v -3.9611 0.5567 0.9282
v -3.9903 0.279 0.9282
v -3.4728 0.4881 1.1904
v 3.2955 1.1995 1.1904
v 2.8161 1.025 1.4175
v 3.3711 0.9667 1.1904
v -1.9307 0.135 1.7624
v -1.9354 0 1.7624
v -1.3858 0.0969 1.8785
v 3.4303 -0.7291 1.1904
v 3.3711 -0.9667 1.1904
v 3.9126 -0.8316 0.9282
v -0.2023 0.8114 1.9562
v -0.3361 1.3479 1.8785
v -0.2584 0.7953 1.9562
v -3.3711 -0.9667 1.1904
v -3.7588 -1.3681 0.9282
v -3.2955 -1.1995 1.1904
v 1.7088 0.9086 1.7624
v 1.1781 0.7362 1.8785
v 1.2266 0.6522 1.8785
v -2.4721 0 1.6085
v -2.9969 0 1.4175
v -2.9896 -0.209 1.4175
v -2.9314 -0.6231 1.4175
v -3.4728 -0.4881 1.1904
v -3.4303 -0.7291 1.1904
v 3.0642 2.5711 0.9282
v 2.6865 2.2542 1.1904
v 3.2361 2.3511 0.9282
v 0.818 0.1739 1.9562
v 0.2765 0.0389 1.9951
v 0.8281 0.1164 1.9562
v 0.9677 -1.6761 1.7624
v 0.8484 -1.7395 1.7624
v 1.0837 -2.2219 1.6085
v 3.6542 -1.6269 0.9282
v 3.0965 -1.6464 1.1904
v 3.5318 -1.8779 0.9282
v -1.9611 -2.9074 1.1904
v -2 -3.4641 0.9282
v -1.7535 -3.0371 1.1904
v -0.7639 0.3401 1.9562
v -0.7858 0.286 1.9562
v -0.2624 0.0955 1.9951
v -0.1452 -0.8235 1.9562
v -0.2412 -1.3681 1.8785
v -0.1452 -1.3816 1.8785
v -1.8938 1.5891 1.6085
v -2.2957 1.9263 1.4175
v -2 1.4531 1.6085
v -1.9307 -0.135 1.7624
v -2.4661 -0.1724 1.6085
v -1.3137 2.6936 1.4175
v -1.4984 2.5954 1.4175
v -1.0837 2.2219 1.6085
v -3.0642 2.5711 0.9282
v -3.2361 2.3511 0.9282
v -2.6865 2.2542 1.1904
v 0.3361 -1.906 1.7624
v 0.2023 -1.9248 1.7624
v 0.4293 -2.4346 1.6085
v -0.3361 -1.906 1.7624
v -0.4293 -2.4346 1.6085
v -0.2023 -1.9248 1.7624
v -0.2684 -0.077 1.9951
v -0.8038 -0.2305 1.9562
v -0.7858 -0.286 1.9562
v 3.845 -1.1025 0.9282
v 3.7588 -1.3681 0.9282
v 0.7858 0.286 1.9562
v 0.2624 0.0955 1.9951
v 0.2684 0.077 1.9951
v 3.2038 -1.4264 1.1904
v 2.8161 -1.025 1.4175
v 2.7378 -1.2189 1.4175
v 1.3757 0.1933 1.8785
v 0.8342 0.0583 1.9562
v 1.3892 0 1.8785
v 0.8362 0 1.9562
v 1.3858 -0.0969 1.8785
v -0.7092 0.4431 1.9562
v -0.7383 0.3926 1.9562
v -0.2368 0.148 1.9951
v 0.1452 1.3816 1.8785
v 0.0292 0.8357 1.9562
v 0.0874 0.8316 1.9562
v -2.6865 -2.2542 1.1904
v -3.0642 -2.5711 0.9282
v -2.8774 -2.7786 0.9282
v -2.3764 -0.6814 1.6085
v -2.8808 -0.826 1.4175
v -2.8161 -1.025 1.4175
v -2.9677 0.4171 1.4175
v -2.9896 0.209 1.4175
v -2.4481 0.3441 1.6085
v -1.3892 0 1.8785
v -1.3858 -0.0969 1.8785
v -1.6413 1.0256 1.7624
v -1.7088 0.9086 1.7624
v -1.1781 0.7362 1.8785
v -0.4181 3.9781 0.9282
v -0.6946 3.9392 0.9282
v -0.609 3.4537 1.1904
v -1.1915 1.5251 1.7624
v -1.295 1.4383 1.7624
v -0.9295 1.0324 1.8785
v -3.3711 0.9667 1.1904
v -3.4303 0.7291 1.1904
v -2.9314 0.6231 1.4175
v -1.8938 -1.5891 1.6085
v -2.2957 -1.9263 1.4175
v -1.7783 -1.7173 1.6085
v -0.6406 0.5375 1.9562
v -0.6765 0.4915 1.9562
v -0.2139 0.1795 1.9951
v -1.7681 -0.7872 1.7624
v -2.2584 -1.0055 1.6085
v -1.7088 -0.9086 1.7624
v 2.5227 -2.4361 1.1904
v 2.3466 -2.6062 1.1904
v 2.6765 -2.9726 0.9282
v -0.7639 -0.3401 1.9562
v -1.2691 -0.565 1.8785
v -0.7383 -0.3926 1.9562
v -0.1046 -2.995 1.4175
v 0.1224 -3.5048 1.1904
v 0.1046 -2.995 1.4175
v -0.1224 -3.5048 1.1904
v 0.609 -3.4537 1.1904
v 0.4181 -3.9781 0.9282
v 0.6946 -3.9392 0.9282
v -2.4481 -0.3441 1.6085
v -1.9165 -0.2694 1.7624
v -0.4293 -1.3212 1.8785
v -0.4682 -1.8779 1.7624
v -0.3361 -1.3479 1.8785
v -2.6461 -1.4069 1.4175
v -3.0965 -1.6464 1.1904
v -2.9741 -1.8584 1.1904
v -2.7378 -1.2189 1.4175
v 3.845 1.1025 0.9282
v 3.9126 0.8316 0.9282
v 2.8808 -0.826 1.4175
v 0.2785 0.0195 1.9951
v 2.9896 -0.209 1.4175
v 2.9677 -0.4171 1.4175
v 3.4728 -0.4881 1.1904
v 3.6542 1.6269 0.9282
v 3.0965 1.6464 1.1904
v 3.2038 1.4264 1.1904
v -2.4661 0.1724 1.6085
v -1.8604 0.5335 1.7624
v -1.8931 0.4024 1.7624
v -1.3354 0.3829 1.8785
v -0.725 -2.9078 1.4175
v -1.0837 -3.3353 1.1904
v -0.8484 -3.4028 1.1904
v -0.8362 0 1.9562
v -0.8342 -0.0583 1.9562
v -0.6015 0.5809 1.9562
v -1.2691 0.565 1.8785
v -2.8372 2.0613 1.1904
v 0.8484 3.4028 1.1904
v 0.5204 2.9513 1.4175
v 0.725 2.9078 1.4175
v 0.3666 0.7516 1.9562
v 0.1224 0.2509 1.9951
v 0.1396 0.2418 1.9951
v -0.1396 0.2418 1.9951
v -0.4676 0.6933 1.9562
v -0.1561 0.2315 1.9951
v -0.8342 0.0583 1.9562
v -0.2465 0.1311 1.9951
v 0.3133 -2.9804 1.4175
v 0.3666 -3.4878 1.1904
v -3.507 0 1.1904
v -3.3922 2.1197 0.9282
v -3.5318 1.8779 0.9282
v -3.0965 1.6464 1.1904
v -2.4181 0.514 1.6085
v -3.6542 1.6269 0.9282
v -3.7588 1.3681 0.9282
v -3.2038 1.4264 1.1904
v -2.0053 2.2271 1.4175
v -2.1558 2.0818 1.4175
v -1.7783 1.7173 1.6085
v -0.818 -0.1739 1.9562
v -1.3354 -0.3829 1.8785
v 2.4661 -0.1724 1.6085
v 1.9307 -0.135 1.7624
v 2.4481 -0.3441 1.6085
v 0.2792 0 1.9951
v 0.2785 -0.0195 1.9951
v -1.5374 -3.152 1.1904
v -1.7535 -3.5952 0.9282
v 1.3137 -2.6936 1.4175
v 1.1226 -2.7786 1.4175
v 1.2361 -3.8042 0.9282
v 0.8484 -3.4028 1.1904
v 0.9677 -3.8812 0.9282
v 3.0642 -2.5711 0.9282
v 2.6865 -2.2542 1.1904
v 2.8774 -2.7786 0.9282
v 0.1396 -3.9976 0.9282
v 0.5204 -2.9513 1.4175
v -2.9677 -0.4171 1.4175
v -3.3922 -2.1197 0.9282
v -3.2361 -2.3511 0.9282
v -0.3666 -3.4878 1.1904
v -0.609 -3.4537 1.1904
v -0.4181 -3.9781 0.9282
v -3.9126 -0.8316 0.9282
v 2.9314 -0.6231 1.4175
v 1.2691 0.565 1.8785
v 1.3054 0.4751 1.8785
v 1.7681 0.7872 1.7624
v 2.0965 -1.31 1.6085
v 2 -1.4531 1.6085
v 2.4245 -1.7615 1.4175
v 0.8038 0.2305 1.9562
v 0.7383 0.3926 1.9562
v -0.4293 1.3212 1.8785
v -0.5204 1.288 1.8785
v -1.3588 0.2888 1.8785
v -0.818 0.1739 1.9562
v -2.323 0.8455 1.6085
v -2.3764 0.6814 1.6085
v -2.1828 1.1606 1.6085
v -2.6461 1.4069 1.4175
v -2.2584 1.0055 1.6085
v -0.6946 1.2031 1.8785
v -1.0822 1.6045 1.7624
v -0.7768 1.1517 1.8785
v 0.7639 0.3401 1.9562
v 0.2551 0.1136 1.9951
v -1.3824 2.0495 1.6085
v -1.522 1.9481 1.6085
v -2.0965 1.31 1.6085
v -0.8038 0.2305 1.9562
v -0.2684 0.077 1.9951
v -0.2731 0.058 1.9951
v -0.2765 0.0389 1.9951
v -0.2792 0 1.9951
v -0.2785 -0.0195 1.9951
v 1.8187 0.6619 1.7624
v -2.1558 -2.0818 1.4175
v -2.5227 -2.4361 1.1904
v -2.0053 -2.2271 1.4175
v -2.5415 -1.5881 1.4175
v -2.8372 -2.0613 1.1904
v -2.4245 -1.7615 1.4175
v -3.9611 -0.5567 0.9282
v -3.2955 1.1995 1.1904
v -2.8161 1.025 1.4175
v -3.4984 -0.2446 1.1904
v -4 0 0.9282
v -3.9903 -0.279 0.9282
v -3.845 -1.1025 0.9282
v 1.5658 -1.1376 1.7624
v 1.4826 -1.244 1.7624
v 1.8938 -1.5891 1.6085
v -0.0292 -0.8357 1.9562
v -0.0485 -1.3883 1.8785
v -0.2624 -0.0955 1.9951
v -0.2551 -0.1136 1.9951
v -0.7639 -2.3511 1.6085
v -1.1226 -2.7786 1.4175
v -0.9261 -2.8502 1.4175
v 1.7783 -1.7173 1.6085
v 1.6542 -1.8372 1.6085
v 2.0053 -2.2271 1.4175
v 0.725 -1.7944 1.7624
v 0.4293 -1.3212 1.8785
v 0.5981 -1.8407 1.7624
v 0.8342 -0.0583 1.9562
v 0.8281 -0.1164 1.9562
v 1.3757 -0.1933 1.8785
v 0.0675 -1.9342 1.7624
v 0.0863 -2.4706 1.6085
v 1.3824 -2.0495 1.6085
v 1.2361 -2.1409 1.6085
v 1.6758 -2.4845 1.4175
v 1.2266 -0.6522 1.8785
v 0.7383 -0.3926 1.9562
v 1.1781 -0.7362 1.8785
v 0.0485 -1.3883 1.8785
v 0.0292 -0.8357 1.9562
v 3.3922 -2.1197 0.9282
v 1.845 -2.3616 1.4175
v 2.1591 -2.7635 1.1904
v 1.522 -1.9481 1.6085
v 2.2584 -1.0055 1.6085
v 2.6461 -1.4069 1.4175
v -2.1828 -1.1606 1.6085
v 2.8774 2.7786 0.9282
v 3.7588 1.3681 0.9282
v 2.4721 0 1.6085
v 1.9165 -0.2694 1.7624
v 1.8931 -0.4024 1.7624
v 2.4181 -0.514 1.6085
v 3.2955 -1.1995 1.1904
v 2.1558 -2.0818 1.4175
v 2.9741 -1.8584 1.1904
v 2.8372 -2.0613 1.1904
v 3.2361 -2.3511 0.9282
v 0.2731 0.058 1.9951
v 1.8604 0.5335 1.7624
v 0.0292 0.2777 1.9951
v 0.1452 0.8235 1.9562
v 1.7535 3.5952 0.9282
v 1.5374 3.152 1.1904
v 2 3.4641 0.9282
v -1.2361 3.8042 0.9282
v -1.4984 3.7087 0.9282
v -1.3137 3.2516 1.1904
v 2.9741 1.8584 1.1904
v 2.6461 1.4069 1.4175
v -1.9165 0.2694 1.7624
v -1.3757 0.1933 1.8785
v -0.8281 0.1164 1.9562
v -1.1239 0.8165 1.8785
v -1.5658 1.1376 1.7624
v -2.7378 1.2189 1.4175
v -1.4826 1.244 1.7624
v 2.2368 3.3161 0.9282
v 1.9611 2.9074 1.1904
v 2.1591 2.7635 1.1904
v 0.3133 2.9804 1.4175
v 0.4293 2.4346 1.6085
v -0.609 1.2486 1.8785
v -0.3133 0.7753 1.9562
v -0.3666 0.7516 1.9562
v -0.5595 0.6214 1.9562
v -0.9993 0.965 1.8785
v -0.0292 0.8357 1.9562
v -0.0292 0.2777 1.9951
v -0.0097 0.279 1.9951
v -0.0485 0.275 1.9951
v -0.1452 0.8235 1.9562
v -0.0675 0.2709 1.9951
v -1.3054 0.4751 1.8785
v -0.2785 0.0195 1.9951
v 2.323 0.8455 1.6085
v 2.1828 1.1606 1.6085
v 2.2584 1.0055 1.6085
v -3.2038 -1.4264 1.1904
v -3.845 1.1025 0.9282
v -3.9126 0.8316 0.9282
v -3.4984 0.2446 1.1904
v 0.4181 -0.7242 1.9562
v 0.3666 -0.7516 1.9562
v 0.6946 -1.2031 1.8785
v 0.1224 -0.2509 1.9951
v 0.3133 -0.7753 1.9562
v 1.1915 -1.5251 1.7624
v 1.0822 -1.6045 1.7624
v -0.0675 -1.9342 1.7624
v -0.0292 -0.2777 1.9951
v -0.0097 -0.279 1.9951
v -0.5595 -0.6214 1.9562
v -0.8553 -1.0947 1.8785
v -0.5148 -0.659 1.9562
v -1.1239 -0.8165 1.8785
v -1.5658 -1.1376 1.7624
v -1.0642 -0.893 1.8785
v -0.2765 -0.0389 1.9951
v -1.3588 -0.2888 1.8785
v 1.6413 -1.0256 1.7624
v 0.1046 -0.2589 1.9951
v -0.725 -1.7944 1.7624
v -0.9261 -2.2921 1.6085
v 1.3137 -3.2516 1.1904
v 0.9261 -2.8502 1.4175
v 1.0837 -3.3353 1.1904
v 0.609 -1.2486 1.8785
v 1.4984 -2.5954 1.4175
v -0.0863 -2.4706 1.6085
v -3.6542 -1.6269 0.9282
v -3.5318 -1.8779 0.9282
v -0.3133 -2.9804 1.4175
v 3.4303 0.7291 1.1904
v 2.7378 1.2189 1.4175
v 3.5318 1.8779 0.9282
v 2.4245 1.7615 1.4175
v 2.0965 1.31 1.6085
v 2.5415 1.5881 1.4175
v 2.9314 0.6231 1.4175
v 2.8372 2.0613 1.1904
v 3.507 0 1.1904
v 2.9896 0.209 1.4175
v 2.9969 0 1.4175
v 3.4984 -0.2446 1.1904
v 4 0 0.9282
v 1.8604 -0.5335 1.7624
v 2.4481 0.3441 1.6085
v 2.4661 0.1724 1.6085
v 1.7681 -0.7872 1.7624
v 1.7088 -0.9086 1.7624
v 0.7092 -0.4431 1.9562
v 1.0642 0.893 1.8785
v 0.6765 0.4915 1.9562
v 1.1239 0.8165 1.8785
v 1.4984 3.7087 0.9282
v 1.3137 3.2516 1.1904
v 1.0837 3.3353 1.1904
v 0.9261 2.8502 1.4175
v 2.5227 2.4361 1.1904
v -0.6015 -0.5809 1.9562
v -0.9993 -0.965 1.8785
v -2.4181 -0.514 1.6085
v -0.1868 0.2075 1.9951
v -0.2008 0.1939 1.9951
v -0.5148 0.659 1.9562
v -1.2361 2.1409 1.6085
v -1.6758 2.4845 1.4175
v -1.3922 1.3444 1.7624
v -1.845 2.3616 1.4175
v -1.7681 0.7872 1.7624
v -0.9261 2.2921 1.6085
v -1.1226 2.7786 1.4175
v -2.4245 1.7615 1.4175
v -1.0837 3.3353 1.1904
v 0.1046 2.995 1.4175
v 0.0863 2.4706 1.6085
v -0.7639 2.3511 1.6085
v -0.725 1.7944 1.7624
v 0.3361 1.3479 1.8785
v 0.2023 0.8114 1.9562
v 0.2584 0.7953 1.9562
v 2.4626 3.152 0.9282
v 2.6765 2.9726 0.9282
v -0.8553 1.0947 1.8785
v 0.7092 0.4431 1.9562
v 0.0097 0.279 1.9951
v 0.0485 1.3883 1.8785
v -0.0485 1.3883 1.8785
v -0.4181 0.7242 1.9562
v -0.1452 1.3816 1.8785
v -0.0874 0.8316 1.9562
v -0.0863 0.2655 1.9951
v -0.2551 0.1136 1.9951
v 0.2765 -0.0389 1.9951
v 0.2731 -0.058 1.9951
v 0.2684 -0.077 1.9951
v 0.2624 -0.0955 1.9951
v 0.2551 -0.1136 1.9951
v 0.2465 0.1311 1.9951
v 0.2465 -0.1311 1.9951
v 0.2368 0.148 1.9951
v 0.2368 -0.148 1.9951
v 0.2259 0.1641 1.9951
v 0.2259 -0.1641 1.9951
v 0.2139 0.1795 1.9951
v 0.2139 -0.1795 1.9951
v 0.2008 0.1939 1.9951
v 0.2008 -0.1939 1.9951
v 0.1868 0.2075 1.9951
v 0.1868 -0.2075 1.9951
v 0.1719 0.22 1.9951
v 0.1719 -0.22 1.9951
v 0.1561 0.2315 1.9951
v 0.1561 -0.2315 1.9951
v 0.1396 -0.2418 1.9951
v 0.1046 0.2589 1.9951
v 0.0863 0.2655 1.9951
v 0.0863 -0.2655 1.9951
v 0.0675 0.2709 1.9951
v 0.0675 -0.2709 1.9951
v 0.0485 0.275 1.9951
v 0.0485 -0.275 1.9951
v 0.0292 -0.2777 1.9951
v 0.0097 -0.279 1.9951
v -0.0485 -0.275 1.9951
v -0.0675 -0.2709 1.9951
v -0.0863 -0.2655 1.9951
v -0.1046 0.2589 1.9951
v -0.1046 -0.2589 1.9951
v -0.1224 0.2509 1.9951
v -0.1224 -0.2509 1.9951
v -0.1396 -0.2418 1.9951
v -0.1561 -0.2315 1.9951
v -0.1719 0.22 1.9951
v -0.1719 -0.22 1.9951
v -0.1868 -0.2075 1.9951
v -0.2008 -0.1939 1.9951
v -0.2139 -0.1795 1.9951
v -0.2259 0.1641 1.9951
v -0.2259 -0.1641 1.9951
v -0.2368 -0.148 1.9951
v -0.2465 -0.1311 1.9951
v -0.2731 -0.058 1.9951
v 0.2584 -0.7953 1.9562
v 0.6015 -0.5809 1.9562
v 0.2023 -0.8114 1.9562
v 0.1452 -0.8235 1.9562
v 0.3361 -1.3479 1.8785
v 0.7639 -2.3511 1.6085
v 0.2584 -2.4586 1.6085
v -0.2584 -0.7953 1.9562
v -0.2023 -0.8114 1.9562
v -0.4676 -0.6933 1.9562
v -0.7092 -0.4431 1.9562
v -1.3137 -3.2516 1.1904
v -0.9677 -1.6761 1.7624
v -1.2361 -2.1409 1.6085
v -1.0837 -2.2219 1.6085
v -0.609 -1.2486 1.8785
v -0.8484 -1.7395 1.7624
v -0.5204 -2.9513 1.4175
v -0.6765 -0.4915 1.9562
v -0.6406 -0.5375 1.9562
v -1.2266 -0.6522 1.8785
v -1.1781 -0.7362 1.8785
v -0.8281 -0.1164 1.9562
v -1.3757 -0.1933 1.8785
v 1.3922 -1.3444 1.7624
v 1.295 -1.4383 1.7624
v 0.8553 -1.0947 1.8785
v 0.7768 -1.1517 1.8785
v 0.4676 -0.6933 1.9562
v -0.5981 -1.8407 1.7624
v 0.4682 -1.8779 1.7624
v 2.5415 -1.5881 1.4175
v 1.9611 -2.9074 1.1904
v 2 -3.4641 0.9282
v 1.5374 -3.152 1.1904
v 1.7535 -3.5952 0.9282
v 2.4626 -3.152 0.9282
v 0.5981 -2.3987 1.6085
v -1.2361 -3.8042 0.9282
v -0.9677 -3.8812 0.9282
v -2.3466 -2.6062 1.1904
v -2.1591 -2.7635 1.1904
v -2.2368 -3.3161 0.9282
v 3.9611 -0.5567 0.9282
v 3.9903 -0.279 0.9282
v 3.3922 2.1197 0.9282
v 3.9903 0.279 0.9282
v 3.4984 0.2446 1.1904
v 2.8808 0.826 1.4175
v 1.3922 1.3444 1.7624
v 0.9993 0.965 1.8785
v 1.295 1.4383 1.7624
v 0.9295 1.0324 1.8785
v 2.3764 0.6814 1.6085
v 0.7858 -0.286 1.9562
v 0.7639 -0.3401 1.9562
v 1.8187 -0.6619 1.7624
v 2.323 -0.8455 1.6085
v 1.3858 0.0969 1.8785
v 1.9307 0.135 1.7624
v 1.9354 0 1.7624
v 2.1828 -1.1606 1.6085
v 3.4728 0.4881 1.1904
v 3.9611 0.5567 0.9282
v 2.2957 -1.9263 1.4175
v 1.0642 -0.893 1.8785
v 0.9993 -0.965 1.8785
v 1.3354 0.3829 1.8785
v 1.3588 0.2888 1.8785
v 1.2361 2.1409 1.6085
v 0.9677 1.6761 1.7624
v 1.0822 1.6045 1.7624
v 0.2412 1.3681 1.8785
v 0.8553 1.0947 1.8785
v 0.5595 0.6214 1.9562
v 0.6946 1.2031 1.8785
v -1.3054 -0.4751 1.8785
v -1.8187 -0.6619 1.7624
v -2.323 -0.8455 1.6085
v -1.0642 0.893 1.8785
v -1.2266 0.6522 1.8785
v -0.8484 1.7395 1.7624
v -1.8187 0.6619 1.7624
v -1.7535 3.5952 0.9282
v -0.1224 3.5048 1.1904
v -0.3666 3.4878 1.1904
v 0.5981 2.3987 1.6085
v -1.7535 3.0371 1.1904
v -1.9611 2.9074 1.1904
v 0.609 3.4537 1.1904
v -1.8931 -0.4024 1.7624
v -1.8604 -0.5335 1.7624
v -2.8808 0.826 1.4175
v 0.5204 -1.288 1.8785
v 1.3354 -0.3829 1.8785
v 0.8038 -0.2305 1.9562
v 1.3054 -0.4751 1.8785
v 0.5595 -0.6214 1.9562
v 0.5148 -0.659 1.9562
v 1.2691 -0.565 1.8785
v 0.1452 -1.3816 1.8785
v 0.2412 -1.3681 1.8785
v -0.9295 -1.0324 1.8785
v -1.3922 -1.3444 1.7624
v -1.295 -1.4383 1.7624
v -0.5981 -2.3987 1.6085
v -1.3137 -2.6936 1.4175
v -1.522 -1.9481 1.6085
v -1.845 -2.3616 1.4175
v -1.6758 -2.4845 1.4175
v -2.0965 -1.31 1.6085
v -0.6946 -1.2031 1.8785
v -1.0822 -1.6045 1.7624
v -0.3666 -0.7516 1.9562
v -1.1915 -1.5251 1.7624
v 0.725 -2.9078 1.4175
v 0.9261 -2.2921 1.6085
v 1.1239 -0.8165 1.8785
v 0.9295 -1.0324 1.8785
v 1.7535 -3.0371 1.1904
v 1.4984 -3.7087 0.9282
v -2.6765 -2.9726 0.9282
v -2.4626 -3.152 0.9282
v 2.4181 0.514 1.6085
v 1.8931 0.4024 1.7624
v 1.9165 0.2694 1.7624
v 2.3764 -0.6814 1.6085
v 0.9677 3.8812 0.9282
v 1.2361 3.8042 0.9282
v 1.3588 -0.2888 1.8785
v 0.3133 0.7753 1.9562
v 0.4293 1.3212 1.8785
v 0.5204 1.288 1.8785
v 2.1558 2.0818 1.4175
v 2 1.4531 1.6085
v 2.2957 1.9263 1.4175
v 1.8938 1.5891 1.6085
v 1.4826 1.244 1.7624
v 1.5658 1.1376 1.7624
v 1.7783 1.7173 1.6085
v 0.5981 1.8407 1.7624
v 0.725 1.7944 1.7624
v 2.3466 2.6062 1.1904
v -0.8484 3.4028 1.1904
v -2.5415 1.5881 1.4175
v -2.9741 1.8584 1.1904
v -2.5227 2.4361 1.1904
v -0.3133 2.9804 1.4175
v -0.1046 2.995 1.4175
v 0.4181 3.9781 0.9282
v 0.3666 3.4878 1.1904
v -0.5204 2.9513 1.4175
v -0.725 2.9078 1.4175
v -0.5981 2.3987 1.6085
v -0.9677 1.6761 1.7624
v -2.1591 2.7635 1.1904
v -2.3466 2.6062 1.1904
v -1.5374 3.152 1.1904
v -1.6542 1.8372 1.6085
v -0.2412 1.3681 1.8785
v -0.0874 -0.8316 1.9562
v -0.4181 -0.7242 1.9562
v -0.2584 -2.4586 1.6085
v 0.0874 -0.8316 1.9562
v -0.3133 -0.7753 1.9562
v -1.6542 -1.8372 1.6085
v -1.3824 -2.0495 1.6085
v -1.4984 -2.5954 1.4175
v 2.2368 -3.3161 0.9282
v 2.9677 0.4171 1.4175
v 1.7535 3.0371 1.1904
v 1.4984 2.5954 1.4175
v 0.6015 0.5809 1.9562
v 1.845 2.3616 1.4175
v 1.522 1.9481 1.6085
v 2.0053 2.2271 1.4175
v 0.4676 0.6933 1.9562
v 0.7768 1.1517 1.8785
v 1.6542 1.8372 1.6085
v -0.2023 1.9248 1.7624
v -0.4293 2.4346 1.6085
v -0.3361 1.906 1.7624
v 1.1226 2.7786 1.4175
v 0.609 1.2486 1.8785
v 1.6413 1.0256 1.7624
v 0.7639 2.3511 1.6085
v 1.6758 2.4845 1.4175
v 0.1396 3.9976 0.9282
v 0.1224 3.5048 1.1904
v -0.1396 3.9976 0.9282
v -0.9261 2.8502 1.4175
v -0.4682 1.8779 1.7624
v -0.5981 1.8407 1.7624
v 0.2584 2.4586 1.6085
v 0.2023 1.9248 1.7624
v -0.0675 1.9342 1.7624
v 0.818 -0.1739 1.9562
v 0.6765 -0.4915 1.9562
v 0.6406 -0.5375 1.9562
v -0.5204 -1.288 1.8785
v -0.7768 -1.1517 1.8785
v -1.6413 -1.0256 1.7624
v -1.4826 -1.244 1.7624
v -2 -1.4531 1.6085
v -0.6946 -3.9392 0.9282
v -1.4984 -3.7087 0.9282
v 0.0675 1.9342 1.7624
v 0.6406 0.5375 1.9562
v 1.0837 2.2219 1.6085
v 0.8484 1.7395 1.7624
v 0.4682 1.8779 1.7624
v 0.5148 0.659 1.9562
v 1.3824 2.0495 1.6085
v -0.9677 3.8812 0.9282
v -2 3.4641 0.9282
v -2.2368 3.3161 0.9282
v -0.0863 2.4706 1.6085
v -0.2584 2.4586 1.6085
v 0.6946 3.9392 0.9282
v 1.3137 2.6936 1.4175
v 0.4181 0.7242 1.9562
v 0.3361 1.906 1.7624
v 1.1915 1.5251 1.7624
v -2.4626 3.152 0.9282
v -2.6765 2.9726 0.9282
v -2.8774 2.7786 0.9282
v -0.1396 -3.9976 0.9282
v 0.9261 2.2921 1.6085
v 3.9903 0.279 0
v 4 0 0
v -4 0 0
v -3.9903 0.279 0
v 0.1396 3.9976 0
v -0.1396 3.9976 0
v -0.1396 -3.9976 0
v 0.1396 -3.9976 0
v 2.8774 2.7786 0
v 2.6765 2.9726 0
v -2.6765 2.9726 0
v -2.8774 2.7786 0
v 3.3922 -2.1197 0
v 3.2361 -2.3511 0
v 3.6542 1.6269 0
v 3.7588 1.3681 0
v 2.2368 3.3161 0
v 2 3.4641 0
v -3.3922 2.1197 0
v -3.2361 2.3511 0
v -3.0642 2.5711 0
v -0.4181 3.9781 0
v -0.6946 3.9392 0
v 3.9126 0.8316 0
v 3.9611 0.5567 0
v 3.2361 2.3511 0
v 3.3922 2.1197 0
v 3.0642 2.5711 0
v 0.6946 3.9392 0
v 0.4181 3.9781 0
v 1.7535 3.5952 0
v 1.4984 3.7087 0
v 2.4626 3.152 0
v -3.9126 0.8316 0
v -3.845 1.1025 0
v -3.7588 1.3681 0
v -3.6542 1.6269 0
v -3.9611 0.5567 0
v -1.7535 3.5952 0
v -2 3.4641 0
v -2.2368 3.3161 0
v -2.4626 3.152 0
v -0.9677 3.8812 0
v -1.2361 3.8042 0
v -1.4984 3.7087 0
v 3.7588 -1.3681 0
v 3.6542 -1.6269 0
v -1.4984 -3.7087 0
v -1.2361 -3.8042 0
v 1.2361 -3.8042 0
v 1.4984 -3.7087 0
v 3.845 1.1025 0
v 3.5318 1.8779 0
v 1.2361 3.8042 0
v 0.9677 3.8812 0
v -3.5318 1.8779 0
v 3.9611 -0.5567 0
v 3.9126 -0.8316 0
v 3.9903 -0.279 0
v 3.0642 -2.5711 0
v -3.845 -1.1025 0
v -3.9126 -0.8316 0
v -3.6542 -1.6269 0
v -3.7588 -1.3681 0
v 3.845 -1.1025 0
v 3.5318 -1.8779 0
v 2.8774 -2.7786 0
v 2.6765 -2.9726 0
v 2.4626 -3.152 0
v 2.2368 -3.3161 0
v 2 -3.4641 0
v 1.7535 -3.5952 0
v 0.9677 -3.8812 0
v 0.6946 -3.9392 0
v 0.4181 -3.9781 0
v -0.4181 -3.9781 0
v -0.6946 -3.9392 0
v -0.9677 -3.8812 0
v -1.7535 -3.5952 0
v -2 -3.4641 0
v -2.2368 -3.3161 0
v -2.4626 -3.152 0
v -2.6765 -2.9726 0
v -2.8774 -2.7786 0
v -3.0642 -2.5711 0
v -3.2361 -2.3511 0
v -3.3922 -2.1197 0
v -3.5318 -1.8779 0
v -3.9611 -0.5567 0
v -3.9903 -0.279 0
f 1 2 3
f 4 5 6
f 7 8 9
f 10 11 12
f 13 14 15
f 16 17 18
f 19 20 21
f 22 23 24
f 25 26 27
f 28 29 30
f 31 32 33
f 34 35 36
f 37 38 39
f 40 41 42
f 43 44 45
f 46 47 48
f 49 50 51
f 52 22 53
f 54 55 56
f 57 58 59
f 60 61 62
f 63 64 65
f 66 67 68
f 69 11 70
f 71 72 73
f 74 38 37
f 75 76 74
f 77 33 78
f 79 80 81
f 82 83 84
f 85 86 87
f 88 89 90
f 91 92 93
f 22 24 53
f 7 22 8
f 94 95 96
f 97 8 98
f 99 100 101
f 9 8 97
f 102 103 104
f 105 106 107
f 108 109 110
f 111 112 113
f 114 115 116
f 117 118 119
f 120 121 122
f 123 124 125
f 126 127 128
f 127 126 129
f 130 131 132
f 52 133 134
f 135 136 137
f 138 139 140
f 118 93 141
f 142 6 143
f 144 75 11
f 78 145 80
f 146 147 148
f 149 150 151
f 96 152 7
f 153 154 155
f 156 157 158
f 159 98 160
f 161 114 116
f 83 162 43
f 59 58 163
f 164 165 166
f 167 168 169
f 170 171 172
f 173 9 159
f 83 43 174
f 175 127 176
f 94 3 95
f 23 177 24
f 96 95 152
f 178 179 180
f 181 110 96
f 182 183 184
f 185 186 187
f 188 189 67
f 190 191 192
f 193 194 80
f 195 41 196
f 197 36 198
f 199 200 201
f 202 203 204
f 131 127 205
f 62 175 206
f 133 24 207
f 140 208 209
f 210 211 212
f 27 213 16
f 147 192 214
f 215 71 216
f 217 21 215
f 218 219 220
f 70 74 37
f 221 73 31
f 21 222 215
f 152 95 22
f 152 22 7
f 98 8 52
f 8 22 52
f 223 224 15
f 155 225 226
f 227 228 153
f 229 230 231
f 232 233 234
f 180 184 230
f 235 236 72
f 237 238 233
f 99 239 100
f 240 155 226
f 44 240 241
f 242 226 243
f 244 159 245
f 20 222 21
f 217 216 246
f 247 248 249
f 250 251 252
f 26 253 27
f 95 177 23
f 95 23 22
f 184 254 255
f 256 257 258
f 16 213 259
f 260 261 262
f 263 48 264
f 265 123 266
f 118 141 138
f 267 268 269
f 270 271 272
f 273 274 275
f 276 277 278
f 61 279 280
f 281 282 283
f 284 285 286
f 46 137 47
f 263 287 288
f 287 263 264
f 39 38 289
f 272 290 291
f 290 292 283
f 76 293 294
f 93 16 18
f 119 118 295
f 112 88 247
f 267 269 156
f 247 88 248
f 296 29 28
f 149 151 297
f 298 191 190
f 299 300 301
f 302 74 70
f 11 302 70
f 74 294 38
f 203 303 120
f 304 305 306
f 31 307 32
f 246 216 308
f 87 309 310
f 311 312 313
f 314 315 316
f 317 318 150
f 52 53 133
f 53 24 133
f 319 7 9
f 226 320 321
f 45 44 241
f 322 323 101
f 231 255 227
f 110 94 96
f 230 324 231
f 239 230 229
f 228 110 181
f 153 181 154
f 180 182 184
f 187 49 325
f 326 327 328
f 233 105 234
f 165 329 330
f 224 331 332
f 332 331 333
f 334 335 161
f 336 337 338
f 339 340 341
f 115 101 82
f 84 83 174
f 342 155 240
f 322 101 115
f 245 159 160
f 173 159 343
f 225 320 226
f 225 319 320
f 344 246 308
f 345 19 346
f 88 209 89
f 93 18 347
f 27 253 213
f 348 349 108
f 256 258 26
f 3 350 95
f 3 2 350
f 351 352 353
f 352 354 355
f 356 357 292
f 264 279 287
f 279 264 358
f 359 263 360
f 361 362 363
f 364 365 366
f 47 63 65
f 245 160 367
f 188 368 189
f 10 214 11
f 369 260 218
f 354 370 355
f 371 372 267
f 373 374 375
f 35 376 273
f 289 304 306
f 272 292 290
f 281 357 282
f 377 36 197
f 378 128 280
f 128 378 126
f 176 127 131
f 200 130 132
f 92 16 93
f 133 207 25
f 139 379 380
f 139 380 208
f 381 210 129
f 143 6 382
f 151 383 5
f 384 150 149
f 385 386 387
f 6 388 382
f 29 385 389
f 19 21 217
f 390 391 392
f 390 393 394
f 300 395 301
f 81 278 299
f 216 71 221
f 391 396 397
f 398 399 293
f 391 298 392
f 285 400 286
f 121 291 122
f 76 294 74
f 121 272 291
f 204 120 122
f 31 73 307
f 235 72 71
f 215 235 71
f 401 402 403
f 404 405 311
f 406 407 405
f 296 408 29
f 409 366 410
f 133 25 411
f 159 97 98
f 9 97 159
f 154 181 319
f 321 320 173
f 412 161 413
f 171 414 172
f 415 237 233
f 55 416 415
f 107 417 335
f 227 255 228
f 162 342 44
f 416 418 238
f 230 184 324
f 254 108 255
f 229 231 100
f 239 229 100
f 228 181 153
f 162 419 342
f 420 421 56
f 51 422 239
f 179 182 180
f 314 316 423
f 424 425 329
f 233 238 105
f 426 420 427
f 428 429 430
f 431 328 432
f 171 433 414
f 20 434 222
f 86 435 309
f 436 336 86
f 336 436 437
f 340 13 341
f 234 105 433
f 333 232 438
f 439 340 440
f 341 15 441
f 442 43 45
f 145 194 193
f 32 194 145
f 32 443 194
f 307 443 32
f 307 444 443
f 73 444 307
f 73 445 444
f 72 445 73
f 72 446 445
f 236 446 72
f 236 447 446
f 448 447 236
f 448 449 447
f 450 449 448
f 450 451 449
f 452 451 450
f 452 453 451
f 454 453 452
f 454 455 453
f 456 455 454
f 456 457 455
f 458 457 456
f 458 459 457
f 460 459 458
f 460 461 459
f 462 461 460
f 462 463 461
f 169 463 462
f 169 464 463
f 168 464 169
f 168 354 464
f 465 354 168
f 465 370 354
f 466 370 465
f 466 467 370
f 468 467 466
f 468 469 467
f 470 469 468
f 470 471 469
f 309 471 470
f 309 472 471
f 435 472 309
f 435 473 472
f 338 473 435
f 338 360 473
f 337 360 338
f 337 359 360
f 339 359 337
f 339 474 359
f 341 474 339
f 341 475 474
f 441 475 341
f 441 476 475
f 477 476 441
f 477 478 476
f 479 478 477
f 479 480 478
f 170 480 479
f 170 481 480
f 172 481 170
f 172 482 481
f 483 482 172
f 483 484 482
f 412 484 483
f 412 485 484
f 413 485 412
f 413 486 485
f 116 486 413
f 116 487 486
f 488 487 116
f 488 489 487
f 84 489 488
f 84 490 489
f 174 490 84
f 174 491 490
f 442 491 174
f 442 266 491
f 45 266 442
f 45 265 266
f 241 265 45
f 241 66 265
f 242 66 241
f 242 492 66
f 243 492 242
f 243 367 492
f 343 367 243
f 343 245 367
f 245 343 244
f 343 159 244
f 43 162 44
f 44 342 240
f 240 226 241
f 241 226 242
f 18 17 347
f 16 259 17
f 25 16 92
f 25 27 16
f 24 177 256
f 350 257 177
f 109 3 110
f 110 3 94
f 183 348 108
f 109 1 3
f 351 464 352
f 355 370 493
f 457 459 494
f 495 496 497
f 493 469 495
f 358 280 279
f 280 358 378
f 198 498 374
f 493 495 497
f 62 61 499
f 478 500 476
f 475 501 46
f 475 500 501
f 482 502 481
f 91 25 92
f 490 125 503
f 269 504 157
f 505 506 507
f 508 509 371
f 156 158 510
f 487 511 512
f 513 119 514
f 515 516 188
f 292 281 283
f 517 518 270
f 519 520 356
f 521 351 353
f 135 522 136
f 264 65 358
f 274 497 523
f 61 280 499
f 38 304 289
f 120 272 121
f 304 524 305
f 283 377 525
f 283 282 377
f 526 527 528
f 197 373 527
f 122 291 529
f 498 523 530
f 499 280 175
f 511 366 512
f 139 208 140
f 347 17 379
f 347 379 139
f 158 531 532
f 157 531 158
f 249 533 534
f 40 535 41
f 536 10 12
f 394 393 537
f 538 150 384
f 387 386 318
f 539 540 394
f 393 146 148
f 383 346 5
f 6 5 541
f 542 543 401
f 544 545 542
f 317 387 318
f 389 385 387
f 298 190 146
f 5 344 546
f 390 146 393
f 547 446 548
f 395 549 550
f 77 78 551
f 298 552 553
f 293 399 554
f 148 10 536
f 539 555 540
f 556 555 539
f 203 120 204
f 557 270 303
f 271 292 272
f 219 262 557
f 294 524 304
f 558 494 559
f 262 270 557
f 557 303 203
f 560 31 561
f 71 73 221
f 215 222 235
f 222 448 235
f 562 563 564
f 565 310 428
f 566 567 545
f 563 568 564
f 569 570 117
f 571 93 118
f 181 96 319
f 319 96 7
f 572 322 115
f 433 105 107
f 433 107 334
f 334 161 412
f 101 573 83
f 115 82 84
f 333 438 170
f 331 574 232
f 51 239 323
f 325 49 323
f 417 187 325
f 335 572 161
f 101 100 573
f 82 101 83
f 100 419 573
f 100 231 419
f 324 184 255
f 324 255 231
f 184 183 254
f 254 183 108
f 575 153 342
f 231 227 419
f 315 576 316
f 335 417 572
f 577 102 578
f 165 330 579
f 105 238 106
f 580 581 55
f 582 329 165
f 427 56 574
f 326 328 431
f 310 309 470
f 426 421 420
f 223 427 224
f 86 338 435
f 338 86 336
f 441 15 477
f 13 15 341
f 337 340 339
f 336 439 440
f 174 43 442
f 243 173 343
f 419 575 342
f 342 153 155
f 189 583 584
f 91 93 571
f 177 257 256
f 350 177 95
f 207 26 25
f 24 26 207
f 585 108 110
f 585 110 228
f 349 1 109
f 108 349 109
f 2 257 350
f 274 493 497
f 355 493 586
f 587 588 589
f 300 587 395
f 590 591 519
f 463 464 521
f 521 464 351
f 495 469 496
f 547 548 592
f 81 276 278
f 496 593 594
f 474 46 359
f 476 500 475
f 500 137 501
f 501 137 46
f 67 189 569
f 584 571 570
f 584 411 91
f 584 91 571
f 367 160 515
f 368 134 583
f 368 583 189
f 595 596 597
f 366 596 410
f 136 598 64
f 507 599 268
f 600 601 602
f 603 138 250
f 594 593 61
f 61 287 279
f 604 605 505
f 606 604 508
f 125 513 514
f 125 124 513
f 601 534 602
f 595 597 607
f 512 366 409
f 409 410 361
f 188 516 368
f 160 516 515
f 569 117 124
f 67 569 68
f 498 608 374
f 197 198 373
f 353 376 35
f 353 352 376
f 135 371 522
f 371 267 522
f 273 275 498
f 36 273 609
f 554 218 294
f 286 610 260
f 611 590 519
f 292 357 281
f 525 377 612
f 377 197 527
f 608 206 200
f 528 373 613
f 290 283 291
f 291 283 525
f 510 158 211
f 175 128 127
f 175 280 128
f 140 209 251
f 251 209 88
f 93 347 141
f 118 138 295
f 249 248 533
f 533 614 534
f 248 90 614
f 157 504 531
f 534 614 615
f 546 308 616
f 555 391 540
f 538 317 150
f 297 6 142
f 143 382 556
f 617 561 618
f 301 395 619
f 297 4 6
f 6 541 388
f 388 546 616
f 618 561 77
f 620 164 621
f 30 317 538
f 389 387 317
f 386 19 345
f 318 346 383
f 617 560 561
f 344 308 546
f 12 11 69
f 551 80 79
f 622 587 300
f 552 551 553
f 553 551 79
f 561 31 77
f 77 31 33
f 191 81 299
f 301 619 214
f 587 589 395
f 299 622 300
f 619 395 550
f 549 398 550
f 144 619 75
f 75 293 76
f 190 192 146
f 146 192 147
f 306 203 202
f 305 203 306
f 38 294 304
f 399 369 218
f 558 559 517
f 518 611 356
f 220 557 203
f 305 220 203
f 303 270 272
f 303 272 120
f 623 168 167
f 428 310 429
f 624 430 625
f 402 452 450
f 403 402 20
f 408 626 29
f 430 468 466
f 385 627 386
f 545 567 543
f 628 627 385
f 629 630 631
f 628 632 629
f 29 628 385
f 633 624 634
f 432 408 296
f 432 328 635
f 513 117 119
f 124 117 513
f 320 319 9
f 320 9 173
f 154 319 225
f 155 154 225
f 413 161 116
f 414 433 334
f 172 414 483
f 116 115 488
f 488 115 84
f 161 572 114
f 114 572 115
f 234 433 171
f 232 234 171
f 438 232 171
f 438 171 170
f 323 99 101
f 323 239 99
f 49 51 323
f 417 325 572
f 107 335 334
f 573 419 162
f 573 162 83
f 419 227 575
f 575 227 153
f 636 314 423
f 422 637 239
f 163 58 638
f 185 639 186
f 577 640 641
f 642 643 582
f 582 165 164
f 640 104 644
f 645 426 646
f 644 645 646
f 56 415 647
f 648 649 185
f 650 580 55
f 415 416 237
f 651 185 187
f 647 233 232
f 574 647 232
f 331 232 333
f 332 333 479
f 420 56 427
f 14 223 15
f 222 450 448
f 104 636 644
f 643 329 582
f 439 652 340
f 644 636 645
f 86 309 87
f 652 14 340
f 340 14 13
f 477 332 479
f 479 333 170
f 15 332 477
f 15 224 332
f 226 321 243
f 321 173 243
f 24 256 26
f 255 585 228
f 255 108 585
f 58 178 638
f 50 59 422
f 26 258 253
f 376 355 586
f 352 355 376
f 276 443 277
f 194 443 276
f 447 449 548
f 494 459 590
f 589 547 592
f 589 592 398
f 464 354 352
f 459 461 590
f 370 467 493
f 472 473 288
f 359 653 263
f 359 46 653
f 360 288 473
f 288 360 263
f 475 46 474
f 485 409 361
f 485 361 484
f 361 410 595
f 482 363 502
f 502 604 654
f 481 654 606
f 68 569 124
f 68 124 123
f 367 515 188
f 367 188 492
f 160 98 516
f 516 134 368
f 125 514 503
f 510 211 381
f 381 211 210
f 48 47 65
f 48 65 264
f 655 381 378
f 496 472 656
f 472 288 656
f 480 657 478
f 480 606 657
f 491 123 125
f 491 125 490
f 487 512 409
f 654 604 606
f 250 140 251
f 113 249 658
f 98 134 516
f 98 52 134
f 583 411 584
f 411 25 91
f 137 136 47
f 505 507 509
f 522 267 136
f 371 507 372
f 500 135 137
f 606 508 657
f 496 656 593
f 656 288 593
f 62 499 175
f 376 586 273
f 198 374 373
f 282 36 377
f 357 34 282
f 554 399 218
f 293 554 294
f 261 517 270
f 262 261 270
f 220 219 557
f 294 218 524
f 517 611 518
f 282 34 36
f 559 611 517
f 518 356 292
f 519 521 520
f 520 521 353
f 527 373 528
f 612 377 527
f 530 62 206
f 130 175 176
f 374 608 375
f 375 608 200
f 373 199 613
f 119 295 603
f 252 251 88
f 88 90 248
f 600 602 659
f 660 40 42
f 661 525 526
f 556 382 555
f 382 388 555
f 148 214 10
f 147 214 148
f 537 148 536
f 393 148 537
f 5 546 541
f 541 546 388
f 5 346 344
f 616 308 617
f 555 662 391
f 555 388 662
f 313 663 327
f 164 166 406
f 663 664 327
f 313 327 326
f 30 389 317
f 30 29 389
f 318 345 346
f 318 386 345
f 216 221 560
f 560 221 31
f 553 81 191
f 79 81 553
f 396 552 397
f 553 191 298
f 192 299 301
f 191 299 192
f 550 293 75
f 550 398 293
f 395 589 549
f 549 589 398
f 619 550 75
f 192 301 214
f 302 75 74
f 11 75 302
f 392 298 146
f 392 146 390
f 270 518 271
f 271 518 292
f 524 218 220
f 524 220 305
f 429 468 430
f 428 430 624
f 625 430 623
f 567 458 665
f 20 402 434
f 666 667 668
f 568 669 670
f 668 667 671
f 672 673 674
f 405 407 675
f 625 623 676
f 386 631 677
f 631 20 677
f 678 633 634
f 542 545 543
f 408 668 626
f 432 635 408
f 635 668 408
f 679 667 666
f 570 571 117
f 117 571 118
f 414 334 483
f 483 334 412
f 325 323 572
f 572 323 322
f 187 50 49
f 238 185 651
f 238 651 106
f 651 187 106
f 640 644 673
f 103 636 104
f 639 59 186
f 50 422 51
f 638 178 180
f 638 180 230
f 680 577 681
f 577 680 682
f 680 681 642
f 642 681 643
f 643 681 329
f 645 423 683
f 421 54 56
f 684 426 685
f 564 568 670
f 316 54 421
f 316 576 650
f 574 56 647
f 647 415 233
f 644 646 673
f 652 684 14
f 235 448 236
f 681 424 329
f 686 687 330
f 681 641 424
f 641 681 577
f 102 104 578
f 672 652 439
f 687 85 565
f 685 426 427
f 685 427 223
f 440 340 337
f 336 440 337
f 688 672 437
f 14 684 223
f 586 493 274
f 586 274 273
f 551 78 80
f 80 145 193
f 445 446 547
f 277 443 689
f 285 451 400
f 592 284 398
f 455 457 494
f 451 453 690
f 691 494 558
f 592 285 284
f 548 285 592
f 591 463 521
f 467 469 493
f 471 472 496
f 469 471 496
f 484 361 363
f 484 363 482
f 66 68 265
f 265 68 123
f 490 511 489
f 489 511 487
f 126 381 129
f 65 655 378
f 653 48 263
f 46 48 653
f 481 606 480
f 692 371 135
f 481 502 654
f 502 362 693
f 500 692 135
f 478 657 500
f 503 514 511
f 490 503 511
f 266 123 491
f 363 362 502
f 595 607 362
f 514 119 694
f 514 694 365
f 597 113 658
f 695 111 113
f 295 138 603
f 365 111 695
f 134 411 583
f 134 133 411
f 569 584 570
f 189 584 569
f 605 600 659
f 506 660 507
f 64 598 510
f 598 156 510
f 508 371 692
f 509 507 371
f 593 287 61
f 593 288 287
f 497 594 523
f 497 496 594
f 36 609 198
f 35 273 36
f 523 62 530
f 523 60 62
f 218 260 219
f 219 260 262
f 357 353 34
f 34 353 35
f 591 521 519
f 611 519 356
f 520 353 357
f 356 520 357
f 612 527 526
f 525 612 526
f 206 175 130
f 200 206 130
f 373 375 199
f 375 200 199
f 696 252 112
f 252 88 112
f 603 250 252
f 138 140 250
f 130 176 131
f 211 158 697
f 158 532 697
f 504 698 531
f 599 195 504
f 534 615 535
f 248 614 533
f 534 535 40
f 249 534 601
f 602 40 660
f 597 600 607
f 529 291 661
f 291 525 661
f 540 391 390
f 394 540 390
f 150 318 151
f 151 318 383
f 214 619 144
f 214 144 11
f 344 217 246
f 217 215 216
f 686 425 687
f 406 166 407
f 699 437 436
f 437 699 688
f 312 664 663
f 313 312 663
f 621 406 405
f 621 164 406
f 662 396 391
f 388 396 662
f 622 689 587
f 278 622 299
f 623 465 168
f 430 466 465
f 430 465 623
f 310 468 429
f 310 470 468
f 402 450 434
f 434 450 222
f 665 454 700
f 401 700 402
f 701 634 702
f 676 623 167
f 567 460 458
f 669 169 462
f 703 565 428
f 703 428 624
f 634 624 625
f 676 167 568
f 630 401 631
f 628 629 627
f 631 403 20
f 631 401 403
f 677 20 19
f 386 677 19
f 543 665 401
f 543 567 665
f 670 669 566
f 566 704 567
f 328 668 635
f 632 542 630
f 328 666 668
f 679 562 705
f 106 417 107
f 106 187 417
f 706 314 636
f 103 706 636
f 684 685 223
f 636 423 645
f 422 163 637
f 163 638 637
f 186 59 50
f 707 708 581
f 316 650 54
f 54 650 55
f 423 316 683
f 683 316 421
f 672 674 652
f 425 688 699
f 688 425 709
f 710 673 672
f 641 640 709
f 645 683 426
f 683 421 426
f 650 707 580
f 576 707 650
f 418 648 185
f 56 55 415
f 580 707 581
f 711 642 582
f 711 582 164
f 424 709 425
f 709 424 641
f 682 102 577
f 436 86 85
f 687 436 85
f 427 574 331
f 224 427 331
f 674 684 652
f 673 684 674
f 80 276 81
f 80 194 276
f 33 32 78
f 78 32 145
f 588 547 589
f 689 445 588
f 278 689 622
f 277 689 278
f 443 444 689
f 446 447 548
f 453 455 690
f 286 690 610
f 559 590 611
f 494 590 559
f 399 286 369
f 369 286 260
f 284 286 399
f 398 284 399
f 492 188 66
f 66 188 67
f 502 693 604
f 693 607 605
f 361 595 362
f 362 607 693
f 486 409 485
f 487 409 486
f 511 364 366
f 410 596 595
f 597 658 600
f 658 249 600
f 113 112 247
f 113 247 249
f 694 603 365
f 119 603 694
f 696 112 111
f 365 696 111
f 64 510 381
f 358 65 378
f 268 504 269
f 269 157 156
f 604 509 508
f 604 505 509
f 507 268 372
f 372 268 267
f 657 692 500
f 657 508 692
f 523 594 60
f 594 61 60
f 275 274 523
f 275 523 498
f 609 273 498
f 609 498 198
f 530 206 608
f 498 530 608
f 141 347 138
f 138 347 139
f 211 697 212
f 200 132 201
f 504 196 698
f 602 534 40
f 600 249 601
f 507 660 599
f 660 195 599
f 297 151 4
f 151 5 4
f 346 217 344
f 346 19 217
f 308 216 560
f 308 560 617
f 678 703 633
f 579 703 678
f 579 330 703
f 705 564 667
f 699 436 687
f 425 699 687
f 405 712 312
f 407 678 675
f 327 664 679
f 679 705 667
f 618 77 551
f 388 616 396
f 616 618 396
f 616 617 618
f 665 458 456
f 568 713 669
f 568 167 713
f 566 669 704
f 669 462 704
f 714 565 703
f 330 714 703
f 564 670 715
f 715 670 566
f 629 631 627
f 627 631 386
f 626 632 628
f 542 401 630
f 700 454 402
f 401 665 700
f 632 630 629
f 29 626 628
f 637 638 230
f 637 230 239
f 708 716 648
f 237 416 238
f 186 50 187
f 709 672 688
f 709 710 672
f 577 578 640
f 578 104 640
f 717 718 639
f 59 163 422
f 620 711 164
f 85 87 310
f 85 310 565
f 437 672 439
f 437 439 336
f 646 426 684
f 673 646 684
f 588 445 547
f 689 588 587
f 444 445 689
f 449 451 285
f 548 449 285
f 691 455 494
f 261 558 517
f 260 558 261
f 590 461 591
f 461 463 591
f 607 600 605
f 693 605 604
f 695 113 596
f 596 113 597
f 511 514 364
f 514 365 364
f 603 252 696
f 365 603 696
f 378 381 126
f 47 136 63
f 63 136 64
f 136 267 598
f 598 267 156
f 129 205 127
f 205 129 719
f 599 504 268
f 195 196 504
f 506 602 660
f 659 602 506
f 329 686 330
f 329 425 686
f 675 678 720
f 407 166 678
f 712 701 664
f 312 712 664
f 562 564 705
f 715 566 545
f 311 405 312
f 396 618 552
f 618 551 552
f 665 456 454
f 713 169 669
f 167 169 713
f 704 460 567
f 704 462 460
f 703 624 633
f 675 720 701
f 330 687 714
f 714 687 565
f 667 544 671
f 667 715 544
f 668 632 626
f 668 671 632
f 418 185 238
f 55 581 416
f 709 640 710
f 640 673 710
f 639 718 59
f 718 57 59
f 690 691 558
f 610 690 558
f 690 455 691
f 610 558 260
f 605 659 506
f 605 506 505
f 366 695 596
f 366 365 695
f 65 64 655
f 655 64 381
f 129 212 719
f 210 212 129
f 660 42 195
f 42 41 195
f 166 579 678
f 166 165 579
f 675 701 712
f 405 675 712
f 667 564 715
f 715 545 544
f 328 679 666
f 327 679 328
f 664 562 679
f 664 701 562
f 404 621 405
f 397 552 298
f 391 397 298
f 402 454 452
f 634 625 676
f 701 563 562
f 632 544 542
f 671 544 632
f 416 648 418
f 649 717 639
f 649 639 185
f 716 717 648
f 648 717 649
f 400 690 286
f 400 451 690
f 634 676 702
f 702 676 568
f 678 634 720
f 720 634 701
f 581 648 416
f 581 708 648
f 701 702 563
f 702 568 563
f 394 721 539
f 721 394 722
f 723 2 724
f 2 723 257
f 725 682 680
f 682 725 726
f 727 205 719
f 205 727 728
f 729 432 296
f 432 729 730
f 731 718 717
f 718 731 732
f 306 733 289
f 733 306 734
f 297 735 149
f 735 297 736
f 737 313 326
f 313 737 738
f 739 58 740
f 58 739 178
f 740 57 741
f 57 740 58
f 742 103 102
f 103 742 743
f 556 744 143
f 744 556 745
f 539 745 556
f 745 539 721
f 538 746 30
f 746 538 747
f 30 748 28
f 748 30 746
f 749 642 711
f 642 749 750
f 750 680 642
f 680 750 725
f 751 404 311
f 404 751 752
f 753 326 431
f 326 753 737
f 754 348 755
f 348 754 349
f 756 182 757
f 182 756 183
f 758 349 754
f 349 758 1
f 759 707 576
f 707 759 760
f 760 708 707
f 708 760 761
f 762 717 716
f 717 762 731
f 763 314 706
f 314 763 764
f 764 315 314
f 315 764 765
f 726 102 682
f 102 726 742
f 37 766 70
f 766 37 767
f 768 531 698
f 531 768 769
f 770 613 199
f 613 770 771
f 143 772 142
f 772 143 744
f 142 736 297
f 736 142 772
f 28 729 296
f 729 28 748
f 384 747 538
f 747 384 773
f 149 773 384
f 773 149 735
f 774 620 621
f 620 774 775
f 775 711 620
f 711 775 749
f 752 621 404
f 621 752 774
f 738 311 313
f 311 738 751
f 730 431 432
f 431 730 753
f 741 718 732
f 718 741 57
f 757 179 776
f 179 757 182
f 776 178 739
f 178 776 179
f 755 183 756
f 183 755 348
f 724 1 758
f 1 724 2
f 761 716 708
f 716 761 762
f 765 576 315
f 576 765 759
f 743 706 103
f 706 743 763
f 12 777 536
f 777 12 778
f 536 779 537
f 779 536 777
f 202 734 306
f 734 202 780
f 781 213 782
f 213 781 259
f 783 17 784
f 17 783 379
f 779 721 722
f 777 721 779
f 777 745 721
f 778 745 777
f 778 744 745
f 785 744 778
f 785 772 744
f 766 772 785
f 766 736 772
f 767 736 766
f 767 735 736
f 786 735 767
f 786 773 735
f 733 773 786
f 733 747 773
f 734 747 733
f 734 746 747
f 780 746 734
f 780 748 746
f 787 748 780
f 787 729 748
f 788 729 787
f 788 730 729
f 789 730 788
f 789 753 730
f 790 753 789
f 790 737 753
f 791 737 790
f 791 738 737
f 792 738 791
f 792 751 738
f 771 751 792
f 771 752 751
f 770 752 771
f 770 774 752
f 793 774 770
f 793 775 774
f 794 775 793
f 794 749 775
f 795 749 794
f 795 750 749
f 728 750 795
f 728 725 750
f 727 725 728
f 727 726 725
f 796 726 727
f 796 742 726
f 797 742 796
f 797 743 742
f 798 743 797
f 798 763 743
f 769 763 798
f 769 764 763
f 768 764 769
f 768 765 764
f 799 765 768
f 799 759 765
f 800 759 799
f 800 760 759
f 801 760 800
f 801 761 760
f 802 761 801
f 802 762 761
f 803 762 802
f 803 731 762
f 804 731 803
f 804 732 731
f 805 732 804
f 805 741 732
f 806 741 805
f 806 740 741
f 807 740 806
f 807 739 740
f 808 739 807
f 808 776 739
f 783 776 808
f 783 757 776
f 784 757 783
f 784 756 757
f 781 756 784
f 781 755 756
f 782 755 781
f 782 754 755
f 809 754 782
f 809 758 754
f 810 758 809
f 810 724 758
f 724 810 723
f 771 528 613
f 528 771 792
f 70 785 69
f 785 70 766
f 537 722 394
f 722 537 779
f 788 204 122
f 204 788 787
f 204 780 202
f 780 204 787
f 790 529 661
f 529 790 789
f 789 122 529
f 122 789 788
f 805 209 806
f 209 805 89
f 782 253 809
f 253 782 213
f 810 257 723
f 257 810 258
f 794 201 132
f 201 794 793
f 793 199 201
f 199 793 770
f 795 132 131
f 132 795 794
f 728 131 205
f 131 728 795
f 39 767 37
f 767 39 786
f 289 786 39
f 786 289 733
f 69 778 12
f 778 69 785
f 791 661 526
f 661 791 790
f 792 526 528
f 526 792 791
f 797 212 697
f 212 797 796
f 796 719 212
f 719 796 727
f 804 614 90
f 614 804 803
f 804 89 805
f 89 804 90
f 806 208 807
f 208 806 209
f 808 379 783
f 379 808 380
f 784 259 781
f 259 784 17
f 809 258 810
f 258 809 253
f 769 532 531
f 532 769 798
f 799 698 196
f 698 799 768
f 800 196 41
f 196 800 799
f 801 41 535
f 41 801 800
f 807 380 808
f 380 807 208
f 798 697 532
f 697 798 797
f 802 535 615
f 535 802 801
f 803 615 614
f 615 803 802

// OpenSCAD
foot($fn=90);
*footHole($fn=90);

module foot(diameter = 8, baseHeight = 1) {
  intersection() {
    translate([0, 0, -(diameter - baseHeight * 2)]) sphere(d=diameter * 2);
    cylinder(d=diameter, h=baseHeight * 2);
  }
}

module footHole(diameter = 8, baseHeight = 1, tolerance = .4) {
  cylinder(d=diameter + tolerance, h=baseHeight);
}
